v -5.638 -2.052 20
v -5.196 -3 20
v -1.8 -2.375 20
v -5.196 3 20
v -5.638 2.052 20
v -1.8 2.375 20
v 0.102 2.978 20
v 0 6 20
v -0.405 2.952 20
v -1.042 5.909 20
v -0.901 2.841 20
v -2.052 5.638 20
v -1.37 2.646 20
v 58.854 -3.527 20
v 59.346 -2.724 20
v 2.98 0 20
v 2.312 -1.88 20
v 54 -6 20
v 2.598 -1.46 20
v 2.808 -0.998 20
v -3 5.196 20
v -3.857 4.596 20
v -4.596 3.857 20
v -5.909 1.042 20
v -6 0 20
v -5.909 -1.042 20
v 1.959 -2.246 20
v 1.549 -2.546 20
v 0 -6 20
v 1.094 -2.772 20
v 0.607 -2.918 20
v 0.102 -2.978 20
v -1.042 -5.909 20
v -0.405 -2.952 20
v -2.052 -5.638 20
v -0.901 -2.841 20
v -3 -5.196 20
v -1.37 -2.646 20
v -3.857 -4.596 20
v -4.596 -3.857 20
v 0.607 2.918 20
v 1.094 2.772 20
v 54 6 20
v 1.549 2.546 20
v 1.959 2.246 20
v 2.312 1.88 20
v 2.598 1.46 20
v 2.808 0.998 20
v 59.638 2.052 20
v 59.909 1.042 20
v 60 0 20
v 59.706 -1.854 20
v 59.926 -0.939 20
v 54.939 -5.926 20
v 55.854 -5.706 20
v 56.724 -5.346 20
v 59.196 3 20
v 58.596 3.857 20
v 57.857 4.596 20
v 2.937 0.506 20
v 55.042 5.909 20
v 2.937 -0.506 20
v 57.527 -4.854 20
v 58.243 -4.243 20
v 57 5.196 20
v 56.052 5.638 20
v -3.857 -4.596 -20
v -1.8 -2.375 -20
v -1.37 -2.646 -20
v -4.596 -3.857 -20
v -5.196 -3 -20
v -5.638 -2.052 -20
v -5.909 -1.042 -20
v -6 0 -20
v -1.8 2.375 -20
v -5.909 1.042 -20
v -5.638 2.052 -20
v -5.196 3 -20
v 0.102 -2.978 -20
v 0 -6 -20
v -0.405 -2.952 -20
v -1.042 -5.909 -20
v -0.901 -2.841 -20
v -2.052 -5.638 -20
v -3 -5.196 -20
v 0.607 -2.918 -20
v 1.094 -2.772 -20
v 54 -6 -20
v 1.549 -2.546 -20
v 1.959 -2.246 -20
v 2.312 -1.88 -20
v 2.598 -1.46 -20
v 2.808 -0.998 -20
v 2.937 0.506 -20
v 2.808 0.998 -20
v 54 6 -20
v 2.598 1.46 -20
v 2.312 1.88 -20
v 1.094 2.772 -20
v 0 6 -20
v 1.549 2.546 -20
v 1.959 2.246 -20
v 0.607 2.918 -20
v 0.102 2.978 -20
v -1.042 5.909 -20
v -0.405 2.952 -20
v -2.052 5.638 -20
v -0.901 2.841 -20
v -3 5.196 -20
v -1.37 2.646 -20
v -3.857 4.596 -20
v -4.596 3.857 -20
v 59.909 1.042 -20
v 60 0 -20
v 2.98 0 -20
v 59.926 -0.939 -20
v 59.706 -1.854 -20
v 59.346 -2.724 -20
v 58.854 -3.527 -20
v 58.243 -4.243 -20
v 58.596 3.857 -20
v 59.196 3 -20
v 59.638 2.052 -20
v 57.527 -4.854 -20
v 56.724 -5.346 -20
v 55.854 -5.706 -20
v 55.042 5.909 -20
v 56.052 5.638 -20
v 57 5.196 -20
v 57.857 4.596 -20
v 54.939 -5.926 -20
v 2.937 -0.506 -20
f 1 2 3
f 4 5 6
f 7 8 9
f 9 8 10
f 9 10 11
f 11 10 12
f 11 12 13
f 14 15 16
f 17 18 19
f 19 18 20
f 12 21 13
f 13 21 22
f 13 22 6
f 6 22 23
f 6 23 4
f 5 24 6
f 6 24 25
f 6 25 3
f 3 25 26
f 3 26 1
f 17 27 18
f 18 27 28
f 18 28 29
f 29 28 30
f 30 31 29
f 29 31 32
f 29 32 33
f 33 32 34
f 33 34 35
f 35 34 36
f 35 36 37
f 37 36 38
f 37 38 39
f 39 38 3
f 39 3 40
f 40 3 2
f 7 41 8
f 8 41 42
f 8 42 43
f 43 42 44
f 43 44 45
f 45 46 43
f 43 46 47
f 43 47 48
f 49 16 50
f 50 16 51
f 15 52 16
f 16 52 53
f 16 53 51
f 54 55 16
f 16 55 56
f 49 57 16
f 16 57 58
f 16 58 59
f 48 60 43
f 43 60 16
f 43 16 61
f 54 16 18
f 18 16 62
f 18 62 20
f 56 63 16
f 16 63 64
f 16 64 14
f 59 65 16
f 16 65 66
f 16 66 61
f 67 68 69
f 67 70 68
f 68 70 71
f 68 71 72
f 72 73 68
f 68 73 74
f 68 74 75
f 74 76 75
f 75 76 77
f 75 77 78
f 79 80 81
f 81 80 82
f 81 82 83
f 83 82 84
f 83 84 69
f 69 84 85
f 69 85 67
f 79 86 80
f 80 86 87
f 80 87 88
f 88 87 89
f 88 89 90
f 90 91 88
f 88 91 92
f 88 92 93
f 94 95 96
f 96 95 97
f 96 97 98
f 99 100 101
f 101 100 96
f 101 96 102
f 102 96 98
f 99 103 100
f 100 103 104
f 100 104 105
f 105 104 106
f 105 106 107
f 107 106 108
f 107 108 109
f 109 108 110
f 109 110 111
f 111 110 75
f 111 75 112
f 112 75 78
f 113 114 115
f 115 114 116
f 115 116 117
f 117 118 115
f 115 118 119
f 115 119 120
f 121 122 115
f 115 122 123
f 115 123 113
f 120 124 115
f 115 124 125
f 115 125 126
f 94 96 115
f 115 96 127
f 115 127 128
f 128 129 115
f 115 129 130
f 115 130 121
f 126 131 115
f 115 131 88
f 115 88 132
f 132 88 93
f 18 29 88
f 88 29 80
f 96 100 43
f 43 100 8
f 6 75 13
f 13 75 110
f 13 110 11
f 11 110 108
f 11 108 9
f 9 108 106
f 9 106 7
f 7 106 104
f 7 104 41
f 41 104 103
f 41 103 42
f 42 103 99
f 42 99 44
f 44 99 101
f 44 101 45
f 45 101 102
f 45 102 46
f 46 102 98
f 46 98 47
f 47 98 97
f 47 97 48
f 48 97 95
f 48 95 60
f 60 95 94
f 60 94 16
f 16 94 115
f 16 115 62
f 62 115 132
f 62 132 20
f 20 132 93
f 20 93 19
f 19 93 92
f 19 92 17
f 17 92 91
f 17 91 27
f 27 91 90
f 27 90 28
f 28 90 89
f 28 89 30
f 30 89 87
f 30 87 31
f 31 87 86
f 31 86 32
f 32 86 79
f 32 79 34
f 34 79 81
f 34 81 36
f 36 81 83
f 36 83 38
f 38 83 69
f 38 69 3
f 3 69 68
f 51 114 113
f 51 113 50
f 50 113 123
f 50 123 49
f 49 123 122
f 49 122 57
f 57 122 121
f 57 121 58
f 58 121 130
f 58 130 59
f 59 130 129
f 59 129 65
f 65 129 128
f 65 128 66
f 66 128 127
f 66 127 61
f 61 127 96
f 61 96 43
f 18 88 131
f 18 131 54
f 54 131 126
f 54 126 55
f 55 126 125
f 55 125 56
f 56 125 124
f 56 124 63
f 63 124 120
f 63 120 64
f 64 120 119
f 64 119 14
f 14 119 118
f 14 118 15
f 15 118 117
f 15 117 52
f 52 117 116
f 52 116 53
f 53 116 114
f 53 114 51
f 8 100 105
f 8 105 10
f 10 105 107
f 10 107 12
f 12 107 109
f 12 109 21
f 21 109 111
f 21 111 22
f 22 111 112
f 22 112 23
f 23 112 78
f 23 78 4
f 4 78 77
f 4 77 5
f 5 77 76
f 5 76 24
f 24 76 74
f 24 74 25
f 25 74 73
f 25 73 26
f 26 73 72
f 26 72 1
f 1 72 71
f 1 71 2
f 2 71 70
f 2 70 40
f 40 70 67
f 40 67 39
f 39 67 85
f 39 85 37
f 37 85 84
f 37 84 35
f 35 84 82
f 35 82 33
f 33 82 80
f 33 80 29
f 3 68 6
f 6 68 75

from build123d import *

# Parameters (mm, degrees)
SKETCH1_W           = 66
SKETCH1_H           = 12
SKETCH1_R           = 2.98
BOSS_EXTRUDE1_DEPTH = 20
FILLET2_R           = 6
BOSS_EXTRUDE2_DEPTH = 40


with BuildPart() as part:
    # Sketch1 → Boss-Extrude1 (new, symmetric)
    with BuildSketch(Plane.XY):
        with Locations((27, 0)):
            Rectangle(SKETCH1_W, SKETCH1_H)
        Circle(SKETCH1_R, mode=Mode.SUBTRACT)
    extrude(amount=BOSS_EXTRUDE1_DEPTH, both=True)

    # Fillet2
    fillet2_edges = [part.edges().sort_by_distance(p)[0] for p in [
        (60, -6, 0),
        (60, 6, 0),
        (-6, -6, 0),
        (-6, 6, 0),
    ]]
    fillet(fillet2_edges, radius=FILLET2_R - 0.0001)  # a hair under: the kernel refuses the full size

    # Sketch2 → Boss-Extrude2 (add)
    with BuildSketch(Plane(origin=(0, 0, -20), x_dir=(-1, 0, 0), z_dir=(0, 0, -1))):
        with BuildLine():
            Line((1.8, -2.374952631), (1.8, 2.374952631))
            ThreePointArc((1.8, 2.374952631), (2.98, 0), (1.8, -2.374952631))
        make_face()
    extrude(amount=-BOSS_EXTRUDE2_DEPTH)


solid = part.part
